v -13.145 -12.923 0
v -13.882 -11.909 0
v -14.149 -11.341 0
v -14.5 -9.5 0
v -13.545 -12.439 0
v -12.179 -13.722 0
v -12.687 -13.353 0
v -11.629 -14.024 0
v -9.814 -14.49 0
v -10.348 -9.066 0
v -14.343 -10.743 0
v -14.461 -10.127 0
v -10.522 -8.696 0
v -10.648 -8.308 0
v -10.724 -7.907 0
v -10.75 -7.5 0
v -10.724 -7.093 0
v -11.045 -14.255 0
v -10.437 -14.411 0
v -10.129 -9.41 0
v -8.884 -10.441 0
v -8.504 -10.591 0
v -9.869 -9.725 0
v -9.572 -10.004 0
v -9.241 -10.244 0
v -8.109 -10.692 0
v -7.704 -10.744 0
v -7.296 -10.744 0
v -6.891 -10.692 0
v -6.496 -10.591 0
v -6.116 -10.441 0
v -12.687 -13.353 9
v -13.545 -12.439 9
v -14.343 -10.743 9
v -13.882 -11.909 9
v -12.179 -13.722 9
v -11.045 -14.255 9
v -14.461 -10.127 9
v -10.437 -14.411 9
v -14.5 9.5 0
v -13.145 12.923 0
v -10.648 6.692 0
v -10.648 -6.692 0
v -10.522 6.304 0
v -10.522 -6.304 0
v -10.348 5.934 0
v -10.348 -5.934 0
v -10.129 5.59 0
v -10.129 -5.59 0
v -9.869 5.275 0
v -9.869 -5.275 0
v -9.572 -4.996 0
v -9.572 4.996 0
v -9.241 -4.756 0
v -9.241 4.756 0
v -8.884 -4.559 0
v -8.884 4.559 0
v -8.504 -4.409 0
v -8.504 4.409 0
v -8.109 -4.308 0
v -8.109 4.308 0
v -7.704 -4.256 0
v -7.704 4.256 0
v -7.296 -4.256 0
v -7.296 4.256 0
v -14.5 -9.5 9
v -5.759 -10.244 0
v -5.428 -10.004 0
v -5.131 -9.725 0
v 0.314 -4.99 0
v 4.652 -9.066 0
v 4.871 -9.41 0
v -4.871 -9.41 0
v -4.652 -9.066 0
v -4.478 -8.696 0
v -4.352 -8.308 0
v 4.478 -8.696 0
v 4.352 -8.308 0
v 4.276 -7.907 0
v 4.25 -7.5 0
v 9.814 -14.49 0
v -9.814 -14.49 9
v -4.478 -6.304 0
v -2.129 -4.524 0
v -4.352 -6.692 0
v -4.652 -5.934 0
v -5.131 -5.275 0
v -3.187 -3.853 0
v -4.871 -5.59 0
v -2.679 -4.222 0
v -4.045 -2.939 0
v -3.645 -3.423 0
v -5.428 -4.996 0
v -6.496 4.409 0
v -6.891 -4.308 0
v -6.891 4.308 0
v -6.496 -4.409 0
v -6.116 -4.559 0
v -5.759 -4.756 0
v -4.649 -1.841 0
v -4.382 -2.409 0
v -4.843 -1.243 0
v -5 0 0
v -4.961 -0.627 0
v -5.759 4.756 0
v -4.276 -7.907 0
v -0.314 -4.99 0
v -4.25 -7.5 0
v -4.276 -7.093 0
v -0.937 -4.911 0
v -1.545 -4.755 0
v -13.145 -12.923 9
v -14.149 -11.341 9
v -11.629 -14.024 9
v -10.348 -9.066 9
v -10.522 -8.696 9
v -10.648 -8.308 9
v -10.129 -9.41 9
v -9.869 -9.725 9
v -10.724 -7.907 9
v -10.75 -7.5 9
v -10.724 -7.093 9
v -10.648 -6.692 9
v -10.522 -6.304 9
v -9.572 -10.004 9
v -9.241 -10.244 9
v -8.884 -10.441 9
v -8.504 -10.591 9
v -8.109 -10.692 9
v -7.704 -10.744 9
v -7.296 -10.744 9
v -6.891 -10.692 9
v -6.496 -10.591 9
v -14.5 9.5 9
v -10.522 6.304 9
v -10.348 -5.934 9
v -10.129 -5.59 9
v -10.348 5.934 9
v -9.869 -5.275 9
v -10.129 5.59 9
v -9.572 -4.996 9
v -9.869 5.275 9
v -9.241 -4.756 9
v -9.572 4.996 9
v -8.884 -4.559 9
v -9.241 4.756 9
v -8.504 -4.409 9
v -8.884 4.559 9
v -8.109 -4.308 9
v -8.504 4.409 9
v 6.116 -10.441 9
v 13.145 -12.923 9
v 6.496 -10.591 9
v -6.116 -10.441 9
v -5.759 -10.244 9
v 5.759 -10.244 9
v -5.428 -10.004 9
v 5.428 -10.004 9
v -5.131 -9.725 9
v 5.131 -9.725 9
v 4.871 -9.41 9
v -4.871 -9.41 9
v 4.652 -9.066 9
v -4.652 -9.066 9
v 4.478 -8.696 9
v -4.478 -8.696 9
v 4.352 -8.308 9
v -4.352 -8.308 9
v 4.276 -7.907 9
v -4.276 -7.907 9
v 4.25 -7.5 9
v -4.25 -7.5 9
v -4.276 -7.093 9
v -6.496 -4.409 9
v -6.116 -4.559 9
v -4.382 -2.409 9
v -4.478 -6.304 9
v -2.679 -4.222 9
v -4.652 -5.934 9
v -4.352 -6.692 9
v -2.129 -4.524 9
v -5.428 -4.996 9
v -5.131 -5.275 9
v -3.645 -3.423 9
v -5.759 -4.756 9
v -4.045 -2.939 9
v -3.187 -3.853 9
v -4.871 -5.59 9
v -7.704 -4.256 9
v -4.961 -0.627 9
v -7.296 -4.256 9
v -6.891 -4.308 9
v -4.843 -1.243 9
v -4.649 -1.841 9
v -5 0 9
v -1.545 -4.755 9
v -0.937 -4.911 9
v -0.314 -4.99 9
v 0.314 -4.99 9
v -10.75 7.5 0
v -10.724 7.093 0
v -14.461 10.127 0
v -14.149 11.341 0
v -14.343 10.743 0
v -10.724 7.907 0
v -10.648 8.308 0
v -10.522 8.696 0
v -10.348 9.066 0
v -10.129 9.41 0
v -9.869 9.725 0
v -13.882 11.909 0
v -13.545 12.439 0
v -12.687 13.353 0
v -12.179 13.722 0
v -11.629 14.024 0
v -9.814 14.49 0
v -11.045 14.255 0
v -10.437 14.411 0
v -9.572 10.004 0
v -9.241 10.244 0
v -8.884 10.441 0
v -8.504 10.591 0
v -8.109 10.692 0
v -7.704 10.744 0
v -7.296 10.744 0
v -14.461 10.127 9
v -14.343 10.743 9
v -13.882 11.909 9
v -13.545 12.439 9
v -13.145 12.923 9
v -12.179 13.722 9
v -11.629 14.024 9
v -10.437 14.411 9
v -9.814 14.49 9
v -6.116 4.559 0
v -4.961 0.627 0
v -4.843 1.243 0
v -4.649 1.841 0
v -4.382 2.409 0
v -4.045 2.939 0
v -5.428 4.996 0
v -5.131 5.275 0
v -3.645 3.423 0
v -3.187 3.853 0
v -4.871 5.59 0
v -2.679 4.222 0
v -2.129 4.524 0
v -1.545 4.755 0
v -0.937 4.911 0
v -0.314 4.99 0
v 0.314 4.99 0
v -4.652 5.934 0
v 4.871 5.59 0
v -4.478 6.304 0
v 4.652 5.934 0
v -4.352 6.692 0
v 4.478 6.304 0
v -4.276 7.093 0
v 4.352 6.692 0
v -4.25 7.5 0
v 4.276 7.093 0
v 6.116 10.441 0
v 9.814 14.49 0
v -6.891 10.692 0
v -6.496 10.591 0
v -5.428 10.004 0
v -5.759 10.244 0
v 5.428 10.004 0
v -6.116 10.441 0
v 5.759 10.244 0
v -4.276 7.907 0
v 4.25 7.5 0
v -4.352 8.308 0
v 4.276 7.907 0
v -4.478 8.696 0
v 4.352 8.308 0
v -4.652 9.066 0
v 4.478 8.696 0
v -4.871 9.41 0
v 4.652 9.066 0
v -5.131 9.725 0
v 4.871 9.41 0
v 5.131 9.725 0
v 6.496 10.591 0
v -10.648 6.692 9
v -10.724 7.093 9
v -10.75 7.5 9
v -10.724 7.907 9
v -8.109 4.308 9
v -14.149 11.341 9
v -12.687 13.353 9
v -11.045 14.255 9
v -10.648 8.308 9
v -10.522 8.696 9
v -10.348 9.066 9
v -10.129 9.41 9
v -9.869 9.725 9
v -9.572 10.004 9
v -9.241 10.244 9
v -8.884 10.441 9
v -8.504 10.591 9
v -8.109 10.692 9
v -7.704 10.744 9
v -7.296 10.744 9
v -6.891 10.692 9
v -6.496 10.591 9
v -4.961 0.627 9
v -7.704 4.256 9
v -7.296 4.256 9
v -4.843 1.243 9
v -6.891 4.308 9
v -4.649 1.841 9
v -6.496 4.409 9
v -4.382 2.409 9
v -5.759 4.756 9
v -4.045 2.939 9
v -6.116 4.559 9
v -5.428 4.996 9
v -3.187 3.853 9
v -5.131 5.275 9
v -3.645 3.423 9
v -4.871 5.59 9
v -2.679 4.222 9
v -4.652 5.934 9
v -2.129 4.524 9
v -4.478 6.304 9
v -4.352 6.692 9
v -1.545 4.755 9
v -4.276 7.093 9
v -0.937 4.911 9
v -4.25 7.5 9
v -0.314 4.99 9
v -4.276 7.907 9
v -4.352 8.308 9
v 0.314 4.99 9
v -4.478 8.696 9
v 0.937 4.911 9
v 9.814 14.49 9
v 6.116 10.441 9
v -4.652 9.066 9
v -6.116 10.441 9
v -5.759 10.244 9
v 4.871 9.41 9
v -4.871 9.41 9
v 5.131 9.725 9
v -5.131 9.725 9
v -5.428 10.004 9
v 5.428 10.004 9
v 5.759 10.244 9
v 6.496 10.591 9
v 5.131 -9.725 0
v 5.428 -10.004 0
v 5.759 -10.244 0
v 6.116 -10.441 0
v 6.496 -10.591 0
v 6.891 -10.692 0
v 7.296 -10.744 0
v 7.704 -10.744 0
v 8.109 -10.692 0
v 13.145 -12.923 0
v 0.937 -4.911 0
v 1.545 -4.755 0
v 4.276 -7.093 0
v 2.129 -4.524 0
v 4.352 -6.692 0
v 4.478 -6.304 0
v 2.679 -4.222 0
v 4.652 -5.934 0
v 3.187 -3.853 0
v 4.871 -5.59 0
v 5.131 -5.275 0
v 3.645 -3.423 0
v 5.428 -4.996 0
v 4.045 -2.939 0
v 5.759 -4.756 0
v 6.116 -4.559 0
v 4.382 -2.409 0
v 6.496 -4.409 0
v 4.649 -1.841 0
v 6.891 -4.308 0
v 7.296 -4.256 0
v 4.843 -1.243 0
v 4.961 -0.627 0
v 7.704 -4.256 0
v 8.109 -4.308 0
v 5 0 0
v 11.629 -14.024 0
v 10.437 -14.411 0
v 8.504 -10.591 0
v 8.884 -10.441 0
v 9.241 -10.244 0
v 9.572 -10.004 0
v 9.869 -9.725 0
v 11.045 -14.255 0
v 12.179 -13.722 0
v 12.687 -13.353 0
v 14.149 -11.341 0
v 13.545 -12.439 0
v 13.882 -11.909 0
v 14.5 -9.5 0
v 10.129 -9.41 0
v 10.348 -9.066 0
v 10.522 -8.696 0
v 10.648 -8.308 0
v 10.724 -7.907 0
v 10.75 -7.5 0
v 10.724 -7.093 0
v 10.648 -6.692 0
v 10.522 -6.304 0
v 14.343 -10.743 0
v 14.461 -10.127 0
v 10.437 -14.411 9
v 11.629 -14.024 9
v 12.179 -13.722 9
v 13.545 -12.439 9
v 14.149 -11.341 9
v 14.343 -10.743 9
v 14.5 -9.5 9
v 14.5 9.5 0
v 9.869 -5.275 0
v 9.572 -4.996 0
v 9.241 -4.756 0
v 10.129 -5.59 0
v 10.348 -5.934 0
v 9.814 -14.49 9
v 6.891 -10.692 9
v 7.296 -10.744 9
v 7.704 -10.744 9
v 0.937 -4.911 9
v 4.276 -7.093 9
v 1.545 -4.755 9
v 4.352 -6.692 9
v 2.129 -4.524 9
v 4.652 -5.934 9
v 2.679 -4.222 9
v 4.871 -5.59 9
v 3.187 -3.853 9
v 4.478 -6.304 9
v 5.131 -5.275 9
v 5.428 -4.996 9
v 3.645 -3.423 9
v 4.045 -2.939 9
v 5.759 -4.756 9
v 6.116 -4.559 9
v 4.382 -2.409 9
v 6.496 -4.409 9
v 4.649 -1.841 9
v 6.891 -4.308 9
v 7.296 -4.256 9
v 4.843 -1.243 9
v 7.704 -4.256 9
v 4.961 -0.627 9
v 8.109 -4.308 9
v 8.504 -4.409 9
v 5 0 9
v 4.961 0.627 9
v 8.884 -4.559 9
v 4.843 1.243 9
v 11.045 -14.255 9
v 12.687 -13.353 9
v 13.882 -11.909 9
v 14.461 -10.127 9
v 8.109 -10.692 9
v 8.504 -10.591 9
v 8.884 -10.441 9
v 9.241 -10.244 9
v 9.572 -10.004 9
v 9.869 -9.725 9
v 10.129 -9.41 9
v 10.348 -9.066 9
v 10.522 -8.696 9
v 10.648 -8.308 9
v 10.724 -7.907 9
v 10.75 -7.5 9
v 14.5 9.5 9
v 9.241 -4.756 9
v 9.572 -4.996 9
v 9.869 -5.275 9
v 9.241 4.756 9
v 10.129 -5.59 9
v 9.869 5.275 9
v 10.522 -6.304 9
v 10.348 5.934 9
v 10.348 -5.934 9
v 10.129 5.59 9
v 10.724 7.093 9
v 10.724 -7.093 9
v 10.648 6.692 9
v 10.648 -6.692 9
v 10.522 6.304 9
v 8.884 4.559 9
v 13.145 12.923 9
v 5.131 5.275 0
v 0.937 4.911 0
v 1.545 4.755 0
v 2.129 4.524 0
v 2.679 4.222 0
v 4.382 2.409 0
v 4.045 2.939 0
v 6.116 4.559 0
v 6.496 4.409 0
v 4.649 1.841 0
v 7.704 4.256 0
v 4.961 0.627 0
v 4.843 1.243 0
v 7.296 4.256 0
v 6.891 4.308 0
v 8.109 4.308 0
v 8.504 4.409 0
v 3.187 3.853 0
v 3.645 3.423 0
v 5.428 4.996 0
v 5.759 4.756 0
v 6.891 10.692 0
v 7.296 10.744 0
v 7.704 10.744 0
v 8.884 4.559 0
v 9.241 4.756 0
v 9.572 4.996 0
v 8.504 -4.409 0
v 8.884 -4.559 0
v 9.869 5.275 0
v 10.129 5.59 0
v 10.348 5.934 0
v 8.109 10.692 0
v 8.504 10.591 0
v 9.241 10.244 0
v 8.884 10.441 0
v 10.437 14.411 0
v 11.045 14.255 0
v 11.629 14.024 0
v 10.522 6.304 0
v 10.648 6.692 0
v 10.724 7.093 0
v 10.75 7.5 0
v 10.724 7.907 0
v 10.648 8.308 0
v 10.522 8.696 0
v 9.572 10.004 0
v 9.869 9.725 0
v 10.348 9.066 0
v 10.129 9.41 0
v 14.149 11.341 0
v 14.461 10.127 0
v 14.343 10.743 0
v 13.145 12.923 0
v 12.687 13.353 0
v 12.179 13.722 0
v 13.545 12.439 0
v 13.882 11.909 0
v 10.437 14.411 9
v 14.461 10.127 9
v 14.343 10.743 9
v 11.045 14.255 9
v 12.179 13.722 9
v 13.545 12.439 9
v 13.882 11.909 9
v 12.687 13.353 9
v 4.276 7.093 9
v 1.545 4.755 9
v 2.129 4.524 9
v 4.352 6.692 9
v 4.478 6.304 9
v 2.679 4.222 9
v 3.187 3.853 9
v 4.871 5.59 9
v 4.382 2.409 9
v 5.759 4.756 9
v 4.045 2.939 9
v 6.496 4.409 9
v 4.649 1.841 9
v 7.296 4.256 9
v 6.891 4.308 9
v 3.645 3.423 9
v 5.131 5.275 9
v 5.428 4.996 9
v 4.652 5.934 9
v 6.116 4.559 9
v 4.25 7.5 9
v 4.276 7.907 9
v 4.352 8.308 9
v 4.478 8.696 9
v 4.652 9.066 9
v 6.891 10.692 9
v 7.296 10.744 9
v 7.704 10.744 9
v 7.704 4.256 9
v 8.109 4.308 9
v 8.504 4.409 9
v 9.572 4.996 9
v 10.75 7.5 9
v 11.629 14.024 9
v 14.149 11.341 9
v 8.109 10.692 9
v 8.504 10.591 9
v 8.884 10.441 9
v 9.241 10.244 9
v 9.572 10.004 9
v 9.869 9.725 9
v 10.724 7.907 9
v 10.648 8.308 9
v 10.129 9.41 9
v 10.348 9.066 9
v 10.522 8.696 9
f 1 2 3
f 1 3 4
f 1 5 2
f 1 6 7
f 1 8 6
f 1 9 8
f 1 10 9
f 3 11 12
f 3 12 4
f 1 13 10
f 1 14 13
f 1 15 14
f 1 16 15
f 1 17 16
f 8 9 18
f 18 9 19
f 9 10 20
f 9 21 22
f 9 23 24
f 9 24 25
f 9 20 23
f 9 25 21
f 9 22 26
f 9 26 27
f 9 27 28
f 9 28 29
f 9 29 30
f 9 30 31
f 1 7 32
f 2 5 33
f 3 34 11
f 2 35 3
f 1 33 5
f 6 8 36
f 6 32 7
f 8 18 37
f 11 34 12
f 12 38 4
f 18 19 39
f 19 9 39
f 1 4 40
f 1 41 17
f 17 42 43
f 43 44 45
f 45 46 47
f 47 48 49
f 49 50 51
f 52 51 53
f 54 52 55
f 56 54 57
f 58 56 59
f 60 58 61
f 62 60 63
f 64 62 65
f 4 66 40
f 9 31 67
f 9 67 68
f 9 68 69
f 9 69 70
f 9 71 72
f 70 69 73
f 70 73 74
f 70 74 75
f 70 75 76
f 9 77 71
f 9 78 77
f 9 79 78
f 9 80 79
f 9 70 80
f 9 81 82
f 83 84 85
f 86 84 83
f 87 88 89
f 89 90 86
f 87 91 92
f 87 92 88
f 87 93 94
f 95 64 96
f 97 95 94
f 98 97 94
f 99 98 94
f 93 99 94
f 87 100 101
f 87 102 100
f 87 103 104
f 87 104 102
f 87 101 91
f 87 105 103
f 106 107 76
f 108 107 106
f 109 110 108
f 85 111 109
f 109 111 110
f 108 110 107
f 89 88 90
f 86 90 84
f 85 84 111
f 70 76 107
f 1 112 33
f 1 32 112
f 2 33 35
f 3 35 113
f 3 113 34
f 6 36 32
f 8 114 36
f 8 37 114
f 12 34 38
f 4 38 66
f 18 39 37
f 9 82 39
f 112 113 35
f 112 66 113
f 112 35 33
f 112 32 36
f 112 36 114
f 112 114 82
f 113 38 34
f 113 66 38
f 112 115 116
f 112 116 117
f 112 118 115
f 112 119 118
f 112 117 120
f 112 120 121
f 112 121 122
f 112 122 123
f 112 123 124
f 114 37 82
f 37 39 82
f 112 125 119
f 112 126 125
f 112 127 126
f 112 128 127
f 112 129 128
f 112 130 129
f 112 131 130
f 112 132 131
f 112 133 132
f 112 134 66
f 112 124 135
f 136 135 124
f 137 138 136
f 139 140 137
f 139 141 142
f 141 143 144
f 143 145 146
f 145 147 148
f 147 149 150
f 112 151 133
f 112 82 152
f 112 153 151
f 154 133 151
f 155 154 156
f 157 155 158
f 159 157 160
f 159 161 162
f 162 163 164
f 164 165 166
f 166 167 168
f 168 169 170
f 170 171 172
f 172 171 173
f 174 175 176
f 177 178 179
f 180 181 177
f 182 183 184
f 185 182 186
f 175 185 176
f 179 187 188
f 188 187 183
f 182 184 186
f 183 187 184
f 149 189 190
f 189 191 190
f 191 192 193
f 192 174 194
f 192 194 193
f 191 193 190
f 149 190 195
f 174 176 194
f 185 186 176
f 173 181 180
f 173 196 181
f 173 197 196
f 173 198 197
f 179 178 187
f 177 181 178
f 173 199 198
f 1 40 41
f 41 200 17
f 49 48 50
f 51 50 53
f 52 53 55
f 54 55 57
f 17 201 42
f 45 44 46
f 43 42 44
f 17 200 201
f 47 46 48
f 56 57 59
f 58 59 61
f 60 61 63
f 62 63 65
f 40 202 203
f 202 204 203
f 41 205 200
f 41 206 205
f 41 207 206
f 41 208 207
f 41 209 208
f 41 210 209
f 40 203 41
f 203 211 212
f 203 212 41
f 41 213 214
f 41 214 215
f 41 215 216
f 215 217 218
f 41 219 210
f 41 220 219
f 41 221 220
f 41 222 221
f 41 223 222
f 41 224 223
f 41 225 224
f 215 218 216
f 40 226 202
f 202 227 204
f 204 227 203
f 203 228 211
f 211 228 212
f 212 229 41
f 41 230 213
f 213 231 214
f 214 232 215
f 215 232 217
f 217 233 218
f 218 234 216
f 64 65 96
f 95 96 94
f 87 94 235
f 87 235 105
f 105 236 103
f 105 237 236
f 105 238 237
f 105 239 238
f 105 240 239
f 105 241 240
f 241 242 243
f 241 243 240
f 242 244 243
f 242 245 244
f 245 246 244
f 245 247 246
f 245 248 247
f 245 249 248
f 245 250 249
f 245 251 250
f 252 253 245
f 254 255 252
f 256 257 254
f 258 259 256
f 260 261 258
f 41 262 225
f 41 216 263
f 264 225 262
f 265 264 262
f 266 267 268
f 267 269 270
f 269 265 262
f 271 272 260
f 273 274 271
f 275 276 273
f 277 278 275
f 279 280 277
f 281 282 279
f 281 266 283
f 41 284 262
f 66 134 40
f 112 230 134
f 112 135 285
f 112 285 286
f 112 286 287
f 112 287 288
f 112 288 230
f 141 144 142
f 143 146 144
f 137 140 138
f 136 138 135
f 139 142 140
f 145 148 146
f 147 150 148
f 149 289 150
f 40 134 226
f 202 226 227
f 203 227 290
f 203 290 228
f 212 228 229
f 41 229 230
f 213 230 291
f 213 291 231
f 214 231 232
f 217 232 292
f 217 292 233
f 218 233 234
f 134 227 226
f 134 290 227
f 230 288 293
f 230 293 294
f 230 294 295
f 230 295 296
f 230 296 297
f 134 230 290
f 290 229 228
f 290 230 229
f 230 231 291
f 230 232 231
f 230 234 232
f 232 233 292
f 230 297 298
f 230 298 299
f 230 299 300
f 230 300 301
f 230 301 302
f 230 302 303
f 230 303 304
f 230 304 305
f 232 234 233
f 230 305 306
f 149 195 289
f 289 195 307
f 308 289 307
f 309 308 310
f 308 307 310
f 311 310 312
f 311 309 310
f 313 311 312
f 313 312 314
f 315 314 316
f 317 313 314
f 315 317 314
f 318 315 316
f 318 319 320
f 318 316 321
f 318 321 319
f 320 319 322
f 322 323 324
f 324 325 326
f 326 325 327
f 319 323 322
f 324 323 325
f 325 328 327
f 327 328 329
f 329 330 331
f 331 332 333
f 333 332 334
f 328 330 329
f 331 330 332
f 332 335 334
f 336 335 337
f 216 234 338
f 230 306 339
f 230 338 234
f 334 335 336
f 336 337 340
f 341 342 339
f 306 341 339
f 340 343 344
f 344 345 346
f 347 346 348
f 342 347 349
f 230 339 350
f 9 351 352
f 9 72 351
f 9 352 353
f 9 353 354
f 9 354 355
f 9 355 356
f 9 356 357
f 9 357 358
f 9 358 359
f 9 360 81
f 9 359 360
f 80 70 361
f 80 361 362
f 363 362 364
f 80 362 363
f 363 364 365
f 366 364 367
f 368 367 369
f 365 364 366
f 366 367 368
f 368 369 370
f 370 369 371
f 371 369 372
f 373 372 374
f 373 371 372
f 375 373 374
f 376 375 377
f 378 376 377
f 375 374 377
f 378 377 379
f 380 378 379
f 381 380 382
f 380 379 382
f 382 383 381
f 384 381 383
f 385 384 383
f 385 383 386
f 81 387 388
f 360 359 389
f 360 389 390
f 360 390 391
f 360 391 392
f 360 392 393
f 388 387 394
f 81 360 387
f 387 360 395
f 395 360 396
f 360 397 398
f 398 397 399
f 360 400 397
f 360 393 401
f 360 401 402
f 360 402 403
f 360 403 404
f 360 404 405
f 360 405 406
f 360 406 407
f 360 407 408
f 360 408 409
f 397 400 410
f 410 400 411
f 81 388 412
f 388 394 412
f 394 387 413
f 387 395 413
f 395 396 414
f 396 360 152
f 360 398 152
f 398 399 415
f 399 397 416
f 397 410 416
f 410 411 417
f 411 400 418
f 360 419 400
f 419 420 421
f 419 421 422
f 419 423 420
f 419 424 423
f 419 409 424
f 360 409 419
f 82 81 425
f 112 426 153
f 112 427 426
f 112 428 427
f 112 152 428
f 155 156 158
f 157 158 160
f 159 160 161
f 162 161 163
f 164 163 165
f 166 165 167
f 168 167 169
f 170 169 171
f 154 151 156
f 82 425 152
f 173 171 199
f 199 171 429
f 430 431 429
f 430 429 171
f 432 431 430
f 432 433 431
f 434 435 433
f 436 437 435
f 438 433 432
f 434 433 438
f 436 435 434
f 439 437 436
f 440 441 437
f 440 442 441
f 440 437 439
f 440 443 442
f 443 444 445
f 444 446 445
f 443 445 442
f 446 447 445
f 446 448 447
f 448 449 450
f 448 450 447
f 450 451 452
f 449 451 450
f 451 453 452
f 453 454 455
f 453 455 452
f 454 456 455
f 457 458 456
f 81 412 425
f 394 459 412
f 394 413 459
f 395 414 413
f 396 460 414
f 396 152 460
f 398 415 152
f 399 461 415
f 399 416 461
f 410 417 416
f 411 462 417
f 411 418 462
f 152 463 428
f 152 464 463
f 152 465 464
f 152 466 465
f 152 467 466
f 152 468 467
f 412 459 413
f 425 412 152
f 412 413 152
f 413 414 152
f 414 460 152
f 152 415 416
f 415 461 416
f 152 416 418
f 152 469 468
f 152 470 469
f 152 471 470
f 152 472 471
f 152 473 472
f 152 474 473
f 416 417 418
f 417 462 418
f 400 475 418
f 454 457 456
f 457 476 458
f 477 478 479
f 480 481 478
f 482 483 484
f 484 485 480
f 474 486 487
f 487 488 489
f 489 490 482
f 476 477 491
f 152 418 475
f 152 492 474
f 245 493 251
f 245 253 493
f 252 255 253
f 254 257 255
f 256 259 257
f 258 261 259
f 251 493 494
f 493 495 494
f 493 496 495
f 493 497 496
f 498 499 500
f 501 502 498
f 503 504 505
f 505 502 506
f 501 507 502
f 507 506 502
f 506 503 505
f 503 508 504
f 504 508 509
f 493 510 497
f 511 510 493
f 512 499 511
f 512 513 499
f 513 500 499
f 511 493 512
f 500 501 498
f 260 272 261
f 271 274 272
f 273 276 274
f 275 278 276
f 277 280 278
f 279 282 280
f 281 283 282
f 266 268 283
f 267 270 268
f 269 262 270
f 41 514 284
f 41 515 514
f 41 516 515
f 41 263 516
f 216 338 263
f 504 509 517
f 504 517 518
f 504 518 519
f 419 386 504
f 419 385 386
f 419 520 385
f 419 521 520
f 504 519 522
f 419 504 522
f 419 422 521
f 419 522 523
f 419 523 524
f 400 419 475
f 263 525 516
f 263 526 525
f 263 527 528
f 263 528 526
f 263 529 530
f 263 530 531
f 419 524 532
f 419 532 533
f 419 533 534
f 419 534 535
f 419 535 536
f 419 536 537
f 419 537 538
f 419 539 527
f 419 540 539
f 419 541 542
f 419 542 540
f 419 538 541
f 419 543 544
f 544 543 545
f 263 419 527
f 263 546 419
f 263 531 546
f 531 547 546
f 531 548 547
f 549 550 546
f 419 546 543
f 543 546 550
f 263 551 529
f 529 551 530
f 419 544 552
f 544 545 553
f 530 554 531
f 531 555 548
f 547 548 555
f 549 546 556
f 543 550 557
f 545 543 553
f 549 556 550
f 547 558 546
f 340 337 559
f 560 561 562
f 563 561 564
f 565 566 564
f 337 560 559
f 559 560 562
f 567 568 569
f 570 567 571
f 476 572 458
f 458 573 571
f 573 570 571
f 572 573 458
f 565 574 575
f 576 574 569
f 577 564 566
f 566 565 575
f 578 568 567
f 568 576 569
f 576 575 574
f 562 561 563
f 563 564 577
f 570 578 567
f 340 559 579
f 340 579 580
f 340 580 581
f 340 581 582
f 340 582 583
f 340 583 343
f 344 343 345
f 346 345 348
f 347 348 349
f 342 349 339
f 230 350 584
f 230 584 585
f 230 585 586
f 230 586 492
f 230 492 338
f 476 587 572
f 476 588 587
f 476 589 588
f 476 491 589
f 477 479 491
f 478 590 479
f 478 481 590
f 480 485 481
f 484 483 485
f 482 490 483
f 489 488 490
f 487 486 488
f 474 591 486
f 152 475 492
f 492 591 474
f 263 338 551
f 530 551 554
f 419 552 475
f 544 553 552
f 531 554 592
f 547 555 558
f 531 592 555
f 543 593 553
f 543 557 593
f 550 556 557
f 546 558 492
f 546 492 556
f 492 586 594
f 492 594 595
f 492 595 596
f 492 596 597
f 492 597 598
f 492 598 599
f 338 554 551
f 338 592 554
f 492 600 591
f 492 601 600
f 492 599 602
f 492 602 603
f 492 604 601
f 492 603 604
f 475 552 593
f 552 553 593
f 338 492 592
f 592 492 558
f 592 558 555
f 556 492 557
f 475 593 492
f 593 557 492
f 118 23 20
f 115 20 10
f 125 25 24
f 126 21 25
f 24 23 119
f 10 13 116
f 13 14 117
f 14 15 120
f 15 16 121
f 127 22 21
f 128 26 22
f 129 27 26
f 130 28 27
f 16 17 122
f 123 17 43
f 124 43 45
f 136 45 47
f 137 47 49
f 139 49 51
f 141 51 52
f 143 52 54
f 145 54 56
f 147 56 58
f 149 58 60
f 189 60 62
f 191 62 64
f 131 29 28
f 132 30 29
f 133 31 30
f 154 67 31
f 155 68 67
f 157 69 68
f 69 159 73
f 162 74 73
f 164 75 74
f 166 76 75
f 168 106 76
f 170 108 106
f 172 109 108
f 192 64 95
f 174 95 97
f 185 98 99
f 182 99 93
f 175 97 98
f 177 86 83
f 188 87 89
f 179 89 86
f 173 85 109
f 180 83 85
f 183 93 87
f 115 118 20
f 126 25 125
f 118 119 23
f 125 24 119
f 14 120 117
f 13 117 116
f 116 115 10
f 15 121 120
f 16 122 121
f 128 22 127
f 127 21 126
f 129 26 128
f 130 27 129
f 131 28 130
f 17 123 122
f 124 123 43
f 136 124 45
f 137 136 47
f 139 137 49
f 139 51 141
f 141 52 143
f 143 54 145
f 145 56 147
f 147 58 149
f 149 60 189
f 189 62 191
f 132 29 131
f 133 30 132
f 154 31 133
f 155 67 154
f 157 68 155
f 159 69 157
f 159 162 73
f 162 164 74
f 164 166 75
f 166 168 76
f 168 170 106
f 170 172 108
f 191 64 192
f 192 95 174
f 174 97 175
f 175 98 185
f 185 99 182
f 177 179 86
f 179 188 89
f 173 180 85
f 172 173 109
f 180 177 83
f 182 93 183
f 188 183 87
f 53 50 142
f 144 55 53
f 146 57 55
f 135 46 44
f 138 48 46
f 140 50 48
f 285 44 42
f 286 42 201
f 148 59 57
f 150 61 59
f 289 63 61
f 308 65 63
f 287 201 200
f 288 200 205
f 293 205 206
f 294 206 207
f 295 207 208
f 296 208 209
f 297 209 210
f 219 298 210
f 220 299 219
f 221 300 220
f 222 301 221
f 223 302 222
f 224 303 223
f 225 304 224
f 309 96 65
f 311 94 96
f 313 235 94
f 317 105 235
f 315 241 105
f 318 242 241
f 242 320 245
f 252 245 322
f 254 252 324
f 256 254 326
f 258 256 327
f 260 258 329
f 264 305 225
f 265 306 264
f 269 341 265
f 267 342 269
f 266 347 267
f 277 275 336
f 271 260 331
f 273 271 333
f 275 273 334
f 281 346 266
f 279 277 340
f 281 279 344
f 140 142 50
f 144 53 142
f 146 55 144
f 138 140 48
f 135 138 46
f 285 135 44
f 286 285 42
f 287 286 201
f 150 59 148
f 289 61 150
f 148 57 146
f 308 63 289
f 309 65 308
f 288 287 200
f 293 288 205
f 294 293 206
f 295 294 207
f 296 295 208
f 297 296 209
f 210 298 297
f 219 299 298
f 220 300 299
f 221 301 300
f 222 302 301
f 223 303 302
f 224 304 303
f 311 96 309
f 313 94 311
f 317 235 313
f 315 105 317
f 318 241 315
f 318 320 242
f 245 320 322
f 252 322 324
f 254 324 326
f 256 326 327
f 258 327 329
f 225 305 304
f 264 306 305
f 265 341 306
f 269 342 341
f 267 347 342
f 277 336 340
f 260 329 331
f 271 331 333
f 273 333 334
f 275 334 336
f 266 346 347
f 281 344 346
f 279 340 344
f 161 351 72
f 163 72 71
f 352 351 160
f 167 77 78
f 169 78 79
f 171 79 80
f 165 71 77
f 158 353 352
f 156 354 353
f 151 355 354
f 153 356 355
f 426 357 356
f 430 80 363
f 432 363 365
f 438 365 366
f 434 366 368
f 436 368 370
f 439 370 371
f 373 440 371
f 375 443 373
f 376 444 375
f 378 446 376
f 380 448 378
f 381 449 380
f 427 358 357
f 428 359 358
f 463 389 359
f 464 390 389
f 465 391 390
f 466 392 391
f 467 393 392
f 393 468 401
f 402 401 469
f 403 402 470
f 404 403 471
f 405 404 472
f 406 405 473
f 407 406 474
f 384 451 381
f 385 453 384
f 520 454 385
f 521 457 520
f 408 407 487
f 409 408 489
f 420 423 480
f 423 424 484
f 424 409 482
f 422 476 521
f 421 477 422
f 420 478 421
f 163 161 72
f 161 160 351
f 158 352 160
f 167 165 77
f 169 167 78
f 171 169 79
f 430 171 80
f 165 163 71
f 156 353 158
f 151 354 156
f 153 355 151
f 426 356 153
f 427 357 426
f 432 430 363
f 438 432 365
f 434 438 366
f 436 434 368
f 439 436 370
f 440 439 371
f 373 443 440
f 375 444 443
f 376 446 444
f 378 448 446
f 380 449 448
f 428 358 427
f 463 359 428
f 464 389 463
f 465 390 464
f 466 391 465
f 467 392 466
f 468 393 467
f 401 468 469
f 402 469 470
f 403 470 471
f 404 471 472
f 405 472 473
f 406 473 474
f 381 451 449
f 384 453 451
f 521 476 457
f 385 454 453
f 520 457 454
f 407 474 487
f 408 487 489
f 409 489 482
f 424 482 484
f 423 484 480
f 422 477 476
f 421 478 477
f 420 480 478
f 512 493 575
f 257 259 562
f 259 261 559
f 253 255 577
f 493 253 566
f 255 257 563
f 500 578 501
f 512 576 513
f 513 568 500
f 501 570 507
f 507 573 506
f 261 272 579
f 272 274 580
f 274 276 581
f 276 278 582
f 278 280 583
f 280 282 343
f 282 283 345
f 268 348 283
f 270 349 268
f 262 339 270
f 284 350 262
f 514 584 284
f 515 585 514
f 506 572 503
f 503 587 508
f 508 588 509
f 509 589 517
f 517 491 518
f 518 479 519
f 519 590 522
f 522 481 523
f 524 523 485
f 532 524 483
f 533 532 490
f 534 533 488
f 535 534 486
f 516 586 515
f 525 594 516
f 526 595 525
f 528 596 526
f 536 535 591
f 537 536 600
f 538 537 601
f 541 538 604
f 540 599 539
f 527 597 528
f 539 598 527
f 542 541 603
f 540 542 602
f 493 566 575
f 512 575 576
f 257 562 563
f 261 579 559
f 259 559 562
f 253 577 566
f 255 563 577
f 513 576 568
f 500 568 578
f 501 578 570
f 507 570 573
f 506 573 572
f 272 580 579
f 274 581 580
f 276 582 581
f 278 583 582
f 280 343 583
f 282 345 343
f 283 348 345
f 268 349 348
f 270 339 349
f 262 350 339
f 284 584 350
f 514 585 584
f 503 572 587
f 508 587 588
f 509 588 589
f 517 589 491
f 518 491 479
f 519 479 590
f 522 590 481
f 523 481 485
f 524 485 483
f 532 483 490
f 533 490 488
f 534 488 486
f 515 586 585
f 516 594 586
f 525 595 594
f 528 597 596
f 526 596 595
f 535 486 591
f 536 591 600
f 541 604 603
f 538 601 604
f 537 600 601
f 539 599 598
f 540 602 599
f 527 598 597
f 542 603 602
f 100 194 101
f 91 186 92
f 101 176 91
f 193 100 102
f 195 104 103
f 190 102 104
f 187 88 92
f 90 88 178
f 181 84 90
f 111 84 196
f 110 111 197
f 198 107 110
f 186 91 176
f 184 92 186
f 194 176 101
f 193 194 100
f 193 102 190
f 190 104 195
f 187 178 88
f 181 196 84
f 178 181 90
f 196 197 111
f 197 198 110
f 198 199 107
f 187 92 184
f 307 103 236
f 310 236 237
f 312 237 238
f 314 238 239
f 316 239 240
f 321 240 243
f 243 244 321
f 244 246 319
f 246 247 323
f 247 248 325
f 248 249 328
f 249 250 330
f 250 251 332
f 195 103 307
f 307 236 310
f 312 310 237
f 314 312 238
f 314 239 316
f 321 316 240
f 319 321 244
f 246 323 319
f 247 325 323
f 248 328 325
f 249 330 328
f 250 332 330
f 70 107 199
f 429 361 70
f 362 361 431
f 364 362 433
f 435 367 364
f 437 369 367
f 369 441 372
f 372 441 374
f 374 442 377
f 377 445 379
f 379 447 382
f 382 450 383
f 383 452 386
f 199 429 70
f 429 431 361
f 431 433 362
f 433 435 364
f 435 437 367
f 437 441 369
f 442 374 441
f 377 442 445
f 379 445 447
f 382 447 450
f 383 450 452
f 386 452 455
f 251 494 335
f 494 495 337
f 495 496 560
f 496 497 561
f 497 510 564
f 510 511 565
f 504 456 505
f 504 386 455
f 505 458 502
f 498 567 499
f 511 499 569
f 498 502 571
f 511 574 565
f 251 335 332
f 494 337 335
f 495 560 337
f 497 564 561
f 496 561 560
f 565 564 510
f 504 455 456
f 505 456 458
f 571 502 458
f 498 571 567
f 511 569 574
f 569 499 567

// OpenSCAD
$fn = 50;

difference() {
	union() {
		hull() {
			translate(v = [-9.5, 9.5, 0]) {
				cylinder(h = 9, r = 5);
			}
			translate(v = [9.5, 9.5, 0]) {
				cylinder(h = 9, r = 5);
			}
			translate(v = [-9.5, -9.5, 0]) {
				cylinder(h = 9, r = 5);
			}
			translate(v = [9.5, -9.5, 0]) {
				cylinder(h = 9, r = 5);
			}
		}
	}
	union() {
		translate(v = [-7.5, -7.5, -100.0]) {
			cylinder(h = 200, r = 3.25);
		}
		translate(v = [-7.5, 7.5, -100.0]) {
			cylinder(h = 200, r = 3.25);
		}
		translate(v = [7.5, -7.5, -100.0]) {
			cylinder(h = 200, r = 3.25);
		}
		translate(v = [7.5, 7.5, -100.0]) {
			cylinder(h = 200, r = 3.25);
		}
		translate(v = [-7.5, -7.5, -100.0]) {
			cylinder(h = 200, r = 1.8);
		}
		translate(v = [-7.5, 7.5, -100.0]) {
			cylinder(h = 200, r = 1.8);
		}
		translate(v = [7.5, -7.5, -100.0]) {
			cylinder(h = 200, r = 1.8);
		}
		translate(v = [7.5, 7.5, -100.0]) {
			cylinder(h = 200, r = 1.8);
		}
		cylinder(h = 9, r = 5.0);
	}
}
